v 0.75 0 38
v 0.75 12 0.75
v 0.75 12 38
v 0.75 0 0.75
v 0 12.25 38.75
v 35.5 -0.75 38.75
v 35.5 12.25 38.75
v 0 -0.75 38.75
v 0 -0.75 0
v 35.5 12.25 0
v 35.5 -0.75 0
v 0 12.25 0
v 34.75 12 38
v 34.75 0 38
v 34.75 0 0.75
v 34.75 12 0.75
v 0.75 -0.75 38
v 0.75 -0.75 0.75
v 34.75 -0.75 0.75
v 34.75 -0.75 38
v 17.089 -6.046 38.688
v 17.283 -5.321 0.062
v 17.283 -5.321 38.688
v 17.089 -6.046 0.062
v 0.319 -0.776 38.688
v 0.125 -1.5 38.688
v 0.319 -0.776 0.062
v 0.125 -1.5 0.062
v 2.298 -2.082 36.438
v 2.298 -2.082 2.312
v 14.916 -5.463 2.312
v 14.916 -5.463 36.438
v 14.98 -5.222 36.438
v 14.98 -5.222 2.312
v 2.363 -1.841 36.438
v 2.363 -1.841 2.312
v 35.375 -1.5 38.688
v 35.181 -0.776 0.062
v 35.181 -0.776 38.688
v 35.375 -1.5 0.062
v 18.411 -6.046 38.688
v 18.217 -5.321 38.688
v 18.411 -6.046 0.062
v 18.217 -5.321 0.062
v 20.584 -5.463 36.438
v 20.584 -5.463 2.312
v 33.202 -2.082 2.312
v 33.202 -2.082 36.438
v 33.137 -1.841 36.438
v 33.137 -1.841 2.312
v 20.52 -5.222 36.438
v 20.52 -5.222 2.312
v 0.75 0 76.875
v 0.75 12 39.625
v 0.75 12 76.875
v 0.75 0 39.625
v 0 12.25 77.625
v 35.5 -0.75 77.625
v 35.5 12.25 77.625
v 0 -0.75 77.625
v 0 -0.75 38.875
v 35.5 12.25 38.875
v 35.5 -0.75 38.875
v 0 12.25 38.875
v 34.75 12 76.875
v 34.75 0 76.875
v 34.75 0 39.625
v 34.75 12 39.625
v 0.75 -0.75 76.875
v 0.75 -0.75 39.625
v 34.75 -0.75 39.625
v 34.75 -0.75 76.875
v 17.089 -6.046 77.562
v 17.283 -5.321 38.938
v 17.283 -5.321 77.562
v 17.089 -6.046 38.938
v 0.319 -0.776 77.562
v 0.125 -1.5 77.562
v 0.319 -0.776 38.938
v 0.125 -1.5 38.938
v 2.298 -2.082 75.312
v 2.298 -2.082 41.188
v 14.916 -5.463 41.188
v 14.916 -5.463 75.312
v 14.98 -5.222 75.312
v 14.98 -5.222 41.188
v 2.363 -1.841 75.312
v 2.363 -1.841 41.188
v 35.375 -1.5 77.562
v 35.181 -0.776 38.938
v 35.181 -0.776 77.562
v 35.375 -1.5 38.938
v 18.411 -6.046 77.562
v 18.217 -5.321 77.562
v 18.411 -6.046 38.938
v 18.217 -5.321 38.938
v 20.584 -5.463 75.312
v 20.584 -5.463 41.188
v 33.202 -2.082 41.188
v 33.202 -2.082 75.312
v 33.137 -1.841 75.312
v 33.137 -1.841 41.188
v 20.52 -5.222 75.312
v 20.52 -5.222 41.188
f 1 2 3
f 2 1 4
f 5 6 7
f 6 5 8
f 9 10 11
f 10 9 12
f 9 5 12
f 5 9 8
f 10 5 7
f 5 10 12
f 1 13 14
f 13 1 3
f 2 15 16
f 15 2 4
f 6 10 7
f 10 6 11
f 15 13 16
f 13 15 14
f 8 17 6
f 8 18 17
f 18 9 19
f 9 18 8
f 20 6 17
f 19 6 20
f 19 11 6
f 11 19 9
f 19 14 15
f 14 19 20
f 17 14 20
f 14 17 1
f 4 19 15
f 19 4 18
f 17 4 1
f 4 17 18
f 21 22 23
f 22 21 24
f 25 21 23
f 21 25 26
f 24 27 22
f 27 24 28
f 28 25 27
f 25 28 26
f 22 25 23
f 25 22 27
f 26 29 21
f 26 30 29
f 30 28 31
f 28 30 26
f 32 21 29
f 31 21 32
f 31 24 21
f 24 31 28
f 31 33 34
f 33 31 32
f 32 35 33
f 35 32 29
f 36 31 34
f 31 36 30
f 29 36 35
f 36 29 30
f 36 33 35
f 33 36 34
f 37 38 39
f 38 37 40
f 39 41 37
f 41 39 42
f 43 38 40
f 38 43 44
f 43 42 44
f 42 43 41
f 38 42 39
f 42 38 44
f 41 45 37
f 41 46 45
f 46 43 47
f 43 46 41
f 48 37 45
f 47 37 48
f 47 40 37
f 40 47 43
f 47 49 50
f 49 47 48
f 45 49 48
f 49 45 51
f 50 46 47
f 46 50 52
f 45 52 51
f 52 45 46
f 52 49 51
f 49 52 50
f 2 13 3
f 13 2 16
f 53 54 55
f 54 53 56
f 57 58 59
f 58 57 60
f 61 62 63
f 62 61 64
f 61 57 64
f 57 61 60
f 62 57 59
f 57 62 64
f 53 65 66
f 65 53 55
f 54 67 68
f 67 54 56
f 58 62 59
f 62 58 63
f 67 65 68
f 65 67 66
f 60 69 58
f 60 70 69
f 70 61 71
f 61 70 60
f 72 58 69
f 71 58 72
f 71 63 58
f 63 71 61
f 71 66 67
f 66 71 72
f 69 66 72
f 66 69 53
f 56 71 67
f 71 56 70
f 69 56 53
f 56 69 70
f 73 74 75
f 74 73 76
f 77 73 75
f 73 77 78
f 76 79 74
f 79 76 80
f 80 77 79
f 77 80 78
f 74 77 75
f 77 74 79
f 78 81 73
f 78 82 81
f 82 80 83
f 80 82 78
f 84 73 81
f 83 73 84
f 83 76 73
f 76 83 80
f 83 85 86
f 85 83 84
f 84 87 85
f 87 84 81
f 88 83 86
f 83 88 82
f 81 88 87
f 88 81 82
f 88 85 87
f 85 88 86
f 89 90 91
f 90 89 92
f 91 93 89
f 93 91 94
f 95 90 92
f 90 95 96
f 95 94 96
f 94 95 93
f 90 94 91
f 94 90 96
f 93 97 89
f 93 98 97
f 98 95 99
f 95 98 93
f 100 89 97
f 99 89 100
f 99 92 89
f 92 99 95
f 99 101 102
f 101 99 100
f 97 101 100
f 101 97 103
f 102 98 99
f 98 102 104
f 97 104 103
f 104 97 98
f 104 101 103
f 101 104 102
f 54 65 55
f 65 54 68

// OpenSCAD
// --- 1. YOUR EXACT SPECS (INCHES) ---
ancho_total   = 35.5; 
alto_total    = 38.75;   
fondo_box     = 12.25;    
t_plywood     = 0.75;     
t_backer      = 0.25;     
t_face_maple  = 0.75;     
rabbet_d      = 0.125;    

// --- 2. YOUR DOOR SPECS (EXACT) ---
door_w        = 17 + 9/16; // 17.5625"
door_h        = 38 + 5/8;  // 38.625"
frame_w       = 2.25;      // 2-1/4" Maple frames
panel_w       = 14 + 1/16; // Includes the 1/2" tongue
panel_h       = 35 + 1/8;
t_door        = 0.75;      // 3/4" Thick maple

Door_Open_Angle = 15;      // Change to 90 to see inside!

// --- 3. COLORS ---
color_plywood = [0.82, 0.71, 0.55]; // Light Brown
color_maple   = [0.45, 0.29, 0.07]; // Dark Brown

$fn = 60;

module shaker_door() {
    // Frame (Dark Maple)
    color(color_maple) union() {
        difference() {
            cube([door_w, t_door, door_h]); 
            // The cutout for the panel
            translate([frame_w, -0.1, frame_w])
                cube([door_w - (frame_w * 2), 0.6, door_h - (frame_w * 2)]);
        }
        // The 1/4" Insert (Light Plywood color for contrast)
        translate([frame_w - 0.25, 0.25, frame_w - 0.25]) 
            color(color_plywood) cube([panel_w, 0.25, panel_h]);
    }
}

module assembly() {
    // A. THE PLYWOOD BOX (With 1/8" Internal Rabbets)
    color(color_plywood) {
        // Left Side
        difference() {
            cube([t_plywood, fondo_box, alto_total]);
            translate([t_plywood - rabbet_d, -0.1, alto_total - t_plywood]) cube([rabbet_d+0.1, fondo_box+0.2, t_plywood+0.1]);
            translate([t_plywood - rabbet_d, -0.1, -0.1]) cube([rabbet_d+0.1, fondo_box+0.2, t_plywood+0.1]);
        }
        // Right Side
        translate([ancho_total - t_plywood, 0, 0])
        difference() {
            cube([t_plywood, fondo_box, alto_total]);
            translate([-0.1, -0.1, alto_total - t_plywood]) cube([rabbet_d+0.1, fondo_box+0.2, t_plywood+0.1]);
            translate([-0.1, -0.1, -0.1]) cube([rabbet_d+0.1, fondo_box+0.2, t_plywood+0.1]);
        }
        // Top & Bottom
        w_horiz = ancho_total - (2 * (t_plywood - rabbet_d));
        horiz_x = t_plywood - rabbet_d;
        translate([horiz_x, 0, 0]) cube([w_horiz, fondo_box, t_plywood]);
        translate([horiz_x, 0, alto_total - t_plywood]) cube([w_horiz, fondo_box, t_plywood]);
    }

    // B. THE 1/4" BACKER
    translate([t_plywood, fondo_box - t_backer, t_plywood])
        color([0.7, 0.6, 0.4]) cube([ancho_total - (2*t_plywood), t_backer, alto_total - (2*t_plywood)]);

    // C. THE 3/4" MAPLE FACE FRAME
    color(color_maple)
    translate([0, -t_face_maple, 0])
    difference() {
        cube([ancho_total, t_face_maple, alto_total]);
        translate([t_plywood, -0.1, t_plywood])
            cube([ancho_total - (2 * t_plywood), t_face_maple+0.2, alto_total - (2 * t_plywood)]);
    }

    // D. THE DOORS (Sitting on top of the Face Frame)
    // Gap calculation for centered doors: (Total Width - (2 * Door Width)) / 3 gaps
    gap = (ancho_total - (2 * door_w)) / 3;

    // Left Door
    translate([gap, -(t_face_maple + t_door), (alto_total - door_h)/2])
    rotate([0, 0, -Door_Open_Angle])
        shaker_door();

    // Right Door
    translate([ancho_total - gap, -(t_face_maple + t_door), (alto_total - door_h)/2])
    rotate([0, 0, Door_Open_Angle])
    translate([-door_w, 0, 0])
        shaker_door();
}

// --- RENDER ---
assembly();
translate([0, 0, alto_total + 0.125]) assembly();
